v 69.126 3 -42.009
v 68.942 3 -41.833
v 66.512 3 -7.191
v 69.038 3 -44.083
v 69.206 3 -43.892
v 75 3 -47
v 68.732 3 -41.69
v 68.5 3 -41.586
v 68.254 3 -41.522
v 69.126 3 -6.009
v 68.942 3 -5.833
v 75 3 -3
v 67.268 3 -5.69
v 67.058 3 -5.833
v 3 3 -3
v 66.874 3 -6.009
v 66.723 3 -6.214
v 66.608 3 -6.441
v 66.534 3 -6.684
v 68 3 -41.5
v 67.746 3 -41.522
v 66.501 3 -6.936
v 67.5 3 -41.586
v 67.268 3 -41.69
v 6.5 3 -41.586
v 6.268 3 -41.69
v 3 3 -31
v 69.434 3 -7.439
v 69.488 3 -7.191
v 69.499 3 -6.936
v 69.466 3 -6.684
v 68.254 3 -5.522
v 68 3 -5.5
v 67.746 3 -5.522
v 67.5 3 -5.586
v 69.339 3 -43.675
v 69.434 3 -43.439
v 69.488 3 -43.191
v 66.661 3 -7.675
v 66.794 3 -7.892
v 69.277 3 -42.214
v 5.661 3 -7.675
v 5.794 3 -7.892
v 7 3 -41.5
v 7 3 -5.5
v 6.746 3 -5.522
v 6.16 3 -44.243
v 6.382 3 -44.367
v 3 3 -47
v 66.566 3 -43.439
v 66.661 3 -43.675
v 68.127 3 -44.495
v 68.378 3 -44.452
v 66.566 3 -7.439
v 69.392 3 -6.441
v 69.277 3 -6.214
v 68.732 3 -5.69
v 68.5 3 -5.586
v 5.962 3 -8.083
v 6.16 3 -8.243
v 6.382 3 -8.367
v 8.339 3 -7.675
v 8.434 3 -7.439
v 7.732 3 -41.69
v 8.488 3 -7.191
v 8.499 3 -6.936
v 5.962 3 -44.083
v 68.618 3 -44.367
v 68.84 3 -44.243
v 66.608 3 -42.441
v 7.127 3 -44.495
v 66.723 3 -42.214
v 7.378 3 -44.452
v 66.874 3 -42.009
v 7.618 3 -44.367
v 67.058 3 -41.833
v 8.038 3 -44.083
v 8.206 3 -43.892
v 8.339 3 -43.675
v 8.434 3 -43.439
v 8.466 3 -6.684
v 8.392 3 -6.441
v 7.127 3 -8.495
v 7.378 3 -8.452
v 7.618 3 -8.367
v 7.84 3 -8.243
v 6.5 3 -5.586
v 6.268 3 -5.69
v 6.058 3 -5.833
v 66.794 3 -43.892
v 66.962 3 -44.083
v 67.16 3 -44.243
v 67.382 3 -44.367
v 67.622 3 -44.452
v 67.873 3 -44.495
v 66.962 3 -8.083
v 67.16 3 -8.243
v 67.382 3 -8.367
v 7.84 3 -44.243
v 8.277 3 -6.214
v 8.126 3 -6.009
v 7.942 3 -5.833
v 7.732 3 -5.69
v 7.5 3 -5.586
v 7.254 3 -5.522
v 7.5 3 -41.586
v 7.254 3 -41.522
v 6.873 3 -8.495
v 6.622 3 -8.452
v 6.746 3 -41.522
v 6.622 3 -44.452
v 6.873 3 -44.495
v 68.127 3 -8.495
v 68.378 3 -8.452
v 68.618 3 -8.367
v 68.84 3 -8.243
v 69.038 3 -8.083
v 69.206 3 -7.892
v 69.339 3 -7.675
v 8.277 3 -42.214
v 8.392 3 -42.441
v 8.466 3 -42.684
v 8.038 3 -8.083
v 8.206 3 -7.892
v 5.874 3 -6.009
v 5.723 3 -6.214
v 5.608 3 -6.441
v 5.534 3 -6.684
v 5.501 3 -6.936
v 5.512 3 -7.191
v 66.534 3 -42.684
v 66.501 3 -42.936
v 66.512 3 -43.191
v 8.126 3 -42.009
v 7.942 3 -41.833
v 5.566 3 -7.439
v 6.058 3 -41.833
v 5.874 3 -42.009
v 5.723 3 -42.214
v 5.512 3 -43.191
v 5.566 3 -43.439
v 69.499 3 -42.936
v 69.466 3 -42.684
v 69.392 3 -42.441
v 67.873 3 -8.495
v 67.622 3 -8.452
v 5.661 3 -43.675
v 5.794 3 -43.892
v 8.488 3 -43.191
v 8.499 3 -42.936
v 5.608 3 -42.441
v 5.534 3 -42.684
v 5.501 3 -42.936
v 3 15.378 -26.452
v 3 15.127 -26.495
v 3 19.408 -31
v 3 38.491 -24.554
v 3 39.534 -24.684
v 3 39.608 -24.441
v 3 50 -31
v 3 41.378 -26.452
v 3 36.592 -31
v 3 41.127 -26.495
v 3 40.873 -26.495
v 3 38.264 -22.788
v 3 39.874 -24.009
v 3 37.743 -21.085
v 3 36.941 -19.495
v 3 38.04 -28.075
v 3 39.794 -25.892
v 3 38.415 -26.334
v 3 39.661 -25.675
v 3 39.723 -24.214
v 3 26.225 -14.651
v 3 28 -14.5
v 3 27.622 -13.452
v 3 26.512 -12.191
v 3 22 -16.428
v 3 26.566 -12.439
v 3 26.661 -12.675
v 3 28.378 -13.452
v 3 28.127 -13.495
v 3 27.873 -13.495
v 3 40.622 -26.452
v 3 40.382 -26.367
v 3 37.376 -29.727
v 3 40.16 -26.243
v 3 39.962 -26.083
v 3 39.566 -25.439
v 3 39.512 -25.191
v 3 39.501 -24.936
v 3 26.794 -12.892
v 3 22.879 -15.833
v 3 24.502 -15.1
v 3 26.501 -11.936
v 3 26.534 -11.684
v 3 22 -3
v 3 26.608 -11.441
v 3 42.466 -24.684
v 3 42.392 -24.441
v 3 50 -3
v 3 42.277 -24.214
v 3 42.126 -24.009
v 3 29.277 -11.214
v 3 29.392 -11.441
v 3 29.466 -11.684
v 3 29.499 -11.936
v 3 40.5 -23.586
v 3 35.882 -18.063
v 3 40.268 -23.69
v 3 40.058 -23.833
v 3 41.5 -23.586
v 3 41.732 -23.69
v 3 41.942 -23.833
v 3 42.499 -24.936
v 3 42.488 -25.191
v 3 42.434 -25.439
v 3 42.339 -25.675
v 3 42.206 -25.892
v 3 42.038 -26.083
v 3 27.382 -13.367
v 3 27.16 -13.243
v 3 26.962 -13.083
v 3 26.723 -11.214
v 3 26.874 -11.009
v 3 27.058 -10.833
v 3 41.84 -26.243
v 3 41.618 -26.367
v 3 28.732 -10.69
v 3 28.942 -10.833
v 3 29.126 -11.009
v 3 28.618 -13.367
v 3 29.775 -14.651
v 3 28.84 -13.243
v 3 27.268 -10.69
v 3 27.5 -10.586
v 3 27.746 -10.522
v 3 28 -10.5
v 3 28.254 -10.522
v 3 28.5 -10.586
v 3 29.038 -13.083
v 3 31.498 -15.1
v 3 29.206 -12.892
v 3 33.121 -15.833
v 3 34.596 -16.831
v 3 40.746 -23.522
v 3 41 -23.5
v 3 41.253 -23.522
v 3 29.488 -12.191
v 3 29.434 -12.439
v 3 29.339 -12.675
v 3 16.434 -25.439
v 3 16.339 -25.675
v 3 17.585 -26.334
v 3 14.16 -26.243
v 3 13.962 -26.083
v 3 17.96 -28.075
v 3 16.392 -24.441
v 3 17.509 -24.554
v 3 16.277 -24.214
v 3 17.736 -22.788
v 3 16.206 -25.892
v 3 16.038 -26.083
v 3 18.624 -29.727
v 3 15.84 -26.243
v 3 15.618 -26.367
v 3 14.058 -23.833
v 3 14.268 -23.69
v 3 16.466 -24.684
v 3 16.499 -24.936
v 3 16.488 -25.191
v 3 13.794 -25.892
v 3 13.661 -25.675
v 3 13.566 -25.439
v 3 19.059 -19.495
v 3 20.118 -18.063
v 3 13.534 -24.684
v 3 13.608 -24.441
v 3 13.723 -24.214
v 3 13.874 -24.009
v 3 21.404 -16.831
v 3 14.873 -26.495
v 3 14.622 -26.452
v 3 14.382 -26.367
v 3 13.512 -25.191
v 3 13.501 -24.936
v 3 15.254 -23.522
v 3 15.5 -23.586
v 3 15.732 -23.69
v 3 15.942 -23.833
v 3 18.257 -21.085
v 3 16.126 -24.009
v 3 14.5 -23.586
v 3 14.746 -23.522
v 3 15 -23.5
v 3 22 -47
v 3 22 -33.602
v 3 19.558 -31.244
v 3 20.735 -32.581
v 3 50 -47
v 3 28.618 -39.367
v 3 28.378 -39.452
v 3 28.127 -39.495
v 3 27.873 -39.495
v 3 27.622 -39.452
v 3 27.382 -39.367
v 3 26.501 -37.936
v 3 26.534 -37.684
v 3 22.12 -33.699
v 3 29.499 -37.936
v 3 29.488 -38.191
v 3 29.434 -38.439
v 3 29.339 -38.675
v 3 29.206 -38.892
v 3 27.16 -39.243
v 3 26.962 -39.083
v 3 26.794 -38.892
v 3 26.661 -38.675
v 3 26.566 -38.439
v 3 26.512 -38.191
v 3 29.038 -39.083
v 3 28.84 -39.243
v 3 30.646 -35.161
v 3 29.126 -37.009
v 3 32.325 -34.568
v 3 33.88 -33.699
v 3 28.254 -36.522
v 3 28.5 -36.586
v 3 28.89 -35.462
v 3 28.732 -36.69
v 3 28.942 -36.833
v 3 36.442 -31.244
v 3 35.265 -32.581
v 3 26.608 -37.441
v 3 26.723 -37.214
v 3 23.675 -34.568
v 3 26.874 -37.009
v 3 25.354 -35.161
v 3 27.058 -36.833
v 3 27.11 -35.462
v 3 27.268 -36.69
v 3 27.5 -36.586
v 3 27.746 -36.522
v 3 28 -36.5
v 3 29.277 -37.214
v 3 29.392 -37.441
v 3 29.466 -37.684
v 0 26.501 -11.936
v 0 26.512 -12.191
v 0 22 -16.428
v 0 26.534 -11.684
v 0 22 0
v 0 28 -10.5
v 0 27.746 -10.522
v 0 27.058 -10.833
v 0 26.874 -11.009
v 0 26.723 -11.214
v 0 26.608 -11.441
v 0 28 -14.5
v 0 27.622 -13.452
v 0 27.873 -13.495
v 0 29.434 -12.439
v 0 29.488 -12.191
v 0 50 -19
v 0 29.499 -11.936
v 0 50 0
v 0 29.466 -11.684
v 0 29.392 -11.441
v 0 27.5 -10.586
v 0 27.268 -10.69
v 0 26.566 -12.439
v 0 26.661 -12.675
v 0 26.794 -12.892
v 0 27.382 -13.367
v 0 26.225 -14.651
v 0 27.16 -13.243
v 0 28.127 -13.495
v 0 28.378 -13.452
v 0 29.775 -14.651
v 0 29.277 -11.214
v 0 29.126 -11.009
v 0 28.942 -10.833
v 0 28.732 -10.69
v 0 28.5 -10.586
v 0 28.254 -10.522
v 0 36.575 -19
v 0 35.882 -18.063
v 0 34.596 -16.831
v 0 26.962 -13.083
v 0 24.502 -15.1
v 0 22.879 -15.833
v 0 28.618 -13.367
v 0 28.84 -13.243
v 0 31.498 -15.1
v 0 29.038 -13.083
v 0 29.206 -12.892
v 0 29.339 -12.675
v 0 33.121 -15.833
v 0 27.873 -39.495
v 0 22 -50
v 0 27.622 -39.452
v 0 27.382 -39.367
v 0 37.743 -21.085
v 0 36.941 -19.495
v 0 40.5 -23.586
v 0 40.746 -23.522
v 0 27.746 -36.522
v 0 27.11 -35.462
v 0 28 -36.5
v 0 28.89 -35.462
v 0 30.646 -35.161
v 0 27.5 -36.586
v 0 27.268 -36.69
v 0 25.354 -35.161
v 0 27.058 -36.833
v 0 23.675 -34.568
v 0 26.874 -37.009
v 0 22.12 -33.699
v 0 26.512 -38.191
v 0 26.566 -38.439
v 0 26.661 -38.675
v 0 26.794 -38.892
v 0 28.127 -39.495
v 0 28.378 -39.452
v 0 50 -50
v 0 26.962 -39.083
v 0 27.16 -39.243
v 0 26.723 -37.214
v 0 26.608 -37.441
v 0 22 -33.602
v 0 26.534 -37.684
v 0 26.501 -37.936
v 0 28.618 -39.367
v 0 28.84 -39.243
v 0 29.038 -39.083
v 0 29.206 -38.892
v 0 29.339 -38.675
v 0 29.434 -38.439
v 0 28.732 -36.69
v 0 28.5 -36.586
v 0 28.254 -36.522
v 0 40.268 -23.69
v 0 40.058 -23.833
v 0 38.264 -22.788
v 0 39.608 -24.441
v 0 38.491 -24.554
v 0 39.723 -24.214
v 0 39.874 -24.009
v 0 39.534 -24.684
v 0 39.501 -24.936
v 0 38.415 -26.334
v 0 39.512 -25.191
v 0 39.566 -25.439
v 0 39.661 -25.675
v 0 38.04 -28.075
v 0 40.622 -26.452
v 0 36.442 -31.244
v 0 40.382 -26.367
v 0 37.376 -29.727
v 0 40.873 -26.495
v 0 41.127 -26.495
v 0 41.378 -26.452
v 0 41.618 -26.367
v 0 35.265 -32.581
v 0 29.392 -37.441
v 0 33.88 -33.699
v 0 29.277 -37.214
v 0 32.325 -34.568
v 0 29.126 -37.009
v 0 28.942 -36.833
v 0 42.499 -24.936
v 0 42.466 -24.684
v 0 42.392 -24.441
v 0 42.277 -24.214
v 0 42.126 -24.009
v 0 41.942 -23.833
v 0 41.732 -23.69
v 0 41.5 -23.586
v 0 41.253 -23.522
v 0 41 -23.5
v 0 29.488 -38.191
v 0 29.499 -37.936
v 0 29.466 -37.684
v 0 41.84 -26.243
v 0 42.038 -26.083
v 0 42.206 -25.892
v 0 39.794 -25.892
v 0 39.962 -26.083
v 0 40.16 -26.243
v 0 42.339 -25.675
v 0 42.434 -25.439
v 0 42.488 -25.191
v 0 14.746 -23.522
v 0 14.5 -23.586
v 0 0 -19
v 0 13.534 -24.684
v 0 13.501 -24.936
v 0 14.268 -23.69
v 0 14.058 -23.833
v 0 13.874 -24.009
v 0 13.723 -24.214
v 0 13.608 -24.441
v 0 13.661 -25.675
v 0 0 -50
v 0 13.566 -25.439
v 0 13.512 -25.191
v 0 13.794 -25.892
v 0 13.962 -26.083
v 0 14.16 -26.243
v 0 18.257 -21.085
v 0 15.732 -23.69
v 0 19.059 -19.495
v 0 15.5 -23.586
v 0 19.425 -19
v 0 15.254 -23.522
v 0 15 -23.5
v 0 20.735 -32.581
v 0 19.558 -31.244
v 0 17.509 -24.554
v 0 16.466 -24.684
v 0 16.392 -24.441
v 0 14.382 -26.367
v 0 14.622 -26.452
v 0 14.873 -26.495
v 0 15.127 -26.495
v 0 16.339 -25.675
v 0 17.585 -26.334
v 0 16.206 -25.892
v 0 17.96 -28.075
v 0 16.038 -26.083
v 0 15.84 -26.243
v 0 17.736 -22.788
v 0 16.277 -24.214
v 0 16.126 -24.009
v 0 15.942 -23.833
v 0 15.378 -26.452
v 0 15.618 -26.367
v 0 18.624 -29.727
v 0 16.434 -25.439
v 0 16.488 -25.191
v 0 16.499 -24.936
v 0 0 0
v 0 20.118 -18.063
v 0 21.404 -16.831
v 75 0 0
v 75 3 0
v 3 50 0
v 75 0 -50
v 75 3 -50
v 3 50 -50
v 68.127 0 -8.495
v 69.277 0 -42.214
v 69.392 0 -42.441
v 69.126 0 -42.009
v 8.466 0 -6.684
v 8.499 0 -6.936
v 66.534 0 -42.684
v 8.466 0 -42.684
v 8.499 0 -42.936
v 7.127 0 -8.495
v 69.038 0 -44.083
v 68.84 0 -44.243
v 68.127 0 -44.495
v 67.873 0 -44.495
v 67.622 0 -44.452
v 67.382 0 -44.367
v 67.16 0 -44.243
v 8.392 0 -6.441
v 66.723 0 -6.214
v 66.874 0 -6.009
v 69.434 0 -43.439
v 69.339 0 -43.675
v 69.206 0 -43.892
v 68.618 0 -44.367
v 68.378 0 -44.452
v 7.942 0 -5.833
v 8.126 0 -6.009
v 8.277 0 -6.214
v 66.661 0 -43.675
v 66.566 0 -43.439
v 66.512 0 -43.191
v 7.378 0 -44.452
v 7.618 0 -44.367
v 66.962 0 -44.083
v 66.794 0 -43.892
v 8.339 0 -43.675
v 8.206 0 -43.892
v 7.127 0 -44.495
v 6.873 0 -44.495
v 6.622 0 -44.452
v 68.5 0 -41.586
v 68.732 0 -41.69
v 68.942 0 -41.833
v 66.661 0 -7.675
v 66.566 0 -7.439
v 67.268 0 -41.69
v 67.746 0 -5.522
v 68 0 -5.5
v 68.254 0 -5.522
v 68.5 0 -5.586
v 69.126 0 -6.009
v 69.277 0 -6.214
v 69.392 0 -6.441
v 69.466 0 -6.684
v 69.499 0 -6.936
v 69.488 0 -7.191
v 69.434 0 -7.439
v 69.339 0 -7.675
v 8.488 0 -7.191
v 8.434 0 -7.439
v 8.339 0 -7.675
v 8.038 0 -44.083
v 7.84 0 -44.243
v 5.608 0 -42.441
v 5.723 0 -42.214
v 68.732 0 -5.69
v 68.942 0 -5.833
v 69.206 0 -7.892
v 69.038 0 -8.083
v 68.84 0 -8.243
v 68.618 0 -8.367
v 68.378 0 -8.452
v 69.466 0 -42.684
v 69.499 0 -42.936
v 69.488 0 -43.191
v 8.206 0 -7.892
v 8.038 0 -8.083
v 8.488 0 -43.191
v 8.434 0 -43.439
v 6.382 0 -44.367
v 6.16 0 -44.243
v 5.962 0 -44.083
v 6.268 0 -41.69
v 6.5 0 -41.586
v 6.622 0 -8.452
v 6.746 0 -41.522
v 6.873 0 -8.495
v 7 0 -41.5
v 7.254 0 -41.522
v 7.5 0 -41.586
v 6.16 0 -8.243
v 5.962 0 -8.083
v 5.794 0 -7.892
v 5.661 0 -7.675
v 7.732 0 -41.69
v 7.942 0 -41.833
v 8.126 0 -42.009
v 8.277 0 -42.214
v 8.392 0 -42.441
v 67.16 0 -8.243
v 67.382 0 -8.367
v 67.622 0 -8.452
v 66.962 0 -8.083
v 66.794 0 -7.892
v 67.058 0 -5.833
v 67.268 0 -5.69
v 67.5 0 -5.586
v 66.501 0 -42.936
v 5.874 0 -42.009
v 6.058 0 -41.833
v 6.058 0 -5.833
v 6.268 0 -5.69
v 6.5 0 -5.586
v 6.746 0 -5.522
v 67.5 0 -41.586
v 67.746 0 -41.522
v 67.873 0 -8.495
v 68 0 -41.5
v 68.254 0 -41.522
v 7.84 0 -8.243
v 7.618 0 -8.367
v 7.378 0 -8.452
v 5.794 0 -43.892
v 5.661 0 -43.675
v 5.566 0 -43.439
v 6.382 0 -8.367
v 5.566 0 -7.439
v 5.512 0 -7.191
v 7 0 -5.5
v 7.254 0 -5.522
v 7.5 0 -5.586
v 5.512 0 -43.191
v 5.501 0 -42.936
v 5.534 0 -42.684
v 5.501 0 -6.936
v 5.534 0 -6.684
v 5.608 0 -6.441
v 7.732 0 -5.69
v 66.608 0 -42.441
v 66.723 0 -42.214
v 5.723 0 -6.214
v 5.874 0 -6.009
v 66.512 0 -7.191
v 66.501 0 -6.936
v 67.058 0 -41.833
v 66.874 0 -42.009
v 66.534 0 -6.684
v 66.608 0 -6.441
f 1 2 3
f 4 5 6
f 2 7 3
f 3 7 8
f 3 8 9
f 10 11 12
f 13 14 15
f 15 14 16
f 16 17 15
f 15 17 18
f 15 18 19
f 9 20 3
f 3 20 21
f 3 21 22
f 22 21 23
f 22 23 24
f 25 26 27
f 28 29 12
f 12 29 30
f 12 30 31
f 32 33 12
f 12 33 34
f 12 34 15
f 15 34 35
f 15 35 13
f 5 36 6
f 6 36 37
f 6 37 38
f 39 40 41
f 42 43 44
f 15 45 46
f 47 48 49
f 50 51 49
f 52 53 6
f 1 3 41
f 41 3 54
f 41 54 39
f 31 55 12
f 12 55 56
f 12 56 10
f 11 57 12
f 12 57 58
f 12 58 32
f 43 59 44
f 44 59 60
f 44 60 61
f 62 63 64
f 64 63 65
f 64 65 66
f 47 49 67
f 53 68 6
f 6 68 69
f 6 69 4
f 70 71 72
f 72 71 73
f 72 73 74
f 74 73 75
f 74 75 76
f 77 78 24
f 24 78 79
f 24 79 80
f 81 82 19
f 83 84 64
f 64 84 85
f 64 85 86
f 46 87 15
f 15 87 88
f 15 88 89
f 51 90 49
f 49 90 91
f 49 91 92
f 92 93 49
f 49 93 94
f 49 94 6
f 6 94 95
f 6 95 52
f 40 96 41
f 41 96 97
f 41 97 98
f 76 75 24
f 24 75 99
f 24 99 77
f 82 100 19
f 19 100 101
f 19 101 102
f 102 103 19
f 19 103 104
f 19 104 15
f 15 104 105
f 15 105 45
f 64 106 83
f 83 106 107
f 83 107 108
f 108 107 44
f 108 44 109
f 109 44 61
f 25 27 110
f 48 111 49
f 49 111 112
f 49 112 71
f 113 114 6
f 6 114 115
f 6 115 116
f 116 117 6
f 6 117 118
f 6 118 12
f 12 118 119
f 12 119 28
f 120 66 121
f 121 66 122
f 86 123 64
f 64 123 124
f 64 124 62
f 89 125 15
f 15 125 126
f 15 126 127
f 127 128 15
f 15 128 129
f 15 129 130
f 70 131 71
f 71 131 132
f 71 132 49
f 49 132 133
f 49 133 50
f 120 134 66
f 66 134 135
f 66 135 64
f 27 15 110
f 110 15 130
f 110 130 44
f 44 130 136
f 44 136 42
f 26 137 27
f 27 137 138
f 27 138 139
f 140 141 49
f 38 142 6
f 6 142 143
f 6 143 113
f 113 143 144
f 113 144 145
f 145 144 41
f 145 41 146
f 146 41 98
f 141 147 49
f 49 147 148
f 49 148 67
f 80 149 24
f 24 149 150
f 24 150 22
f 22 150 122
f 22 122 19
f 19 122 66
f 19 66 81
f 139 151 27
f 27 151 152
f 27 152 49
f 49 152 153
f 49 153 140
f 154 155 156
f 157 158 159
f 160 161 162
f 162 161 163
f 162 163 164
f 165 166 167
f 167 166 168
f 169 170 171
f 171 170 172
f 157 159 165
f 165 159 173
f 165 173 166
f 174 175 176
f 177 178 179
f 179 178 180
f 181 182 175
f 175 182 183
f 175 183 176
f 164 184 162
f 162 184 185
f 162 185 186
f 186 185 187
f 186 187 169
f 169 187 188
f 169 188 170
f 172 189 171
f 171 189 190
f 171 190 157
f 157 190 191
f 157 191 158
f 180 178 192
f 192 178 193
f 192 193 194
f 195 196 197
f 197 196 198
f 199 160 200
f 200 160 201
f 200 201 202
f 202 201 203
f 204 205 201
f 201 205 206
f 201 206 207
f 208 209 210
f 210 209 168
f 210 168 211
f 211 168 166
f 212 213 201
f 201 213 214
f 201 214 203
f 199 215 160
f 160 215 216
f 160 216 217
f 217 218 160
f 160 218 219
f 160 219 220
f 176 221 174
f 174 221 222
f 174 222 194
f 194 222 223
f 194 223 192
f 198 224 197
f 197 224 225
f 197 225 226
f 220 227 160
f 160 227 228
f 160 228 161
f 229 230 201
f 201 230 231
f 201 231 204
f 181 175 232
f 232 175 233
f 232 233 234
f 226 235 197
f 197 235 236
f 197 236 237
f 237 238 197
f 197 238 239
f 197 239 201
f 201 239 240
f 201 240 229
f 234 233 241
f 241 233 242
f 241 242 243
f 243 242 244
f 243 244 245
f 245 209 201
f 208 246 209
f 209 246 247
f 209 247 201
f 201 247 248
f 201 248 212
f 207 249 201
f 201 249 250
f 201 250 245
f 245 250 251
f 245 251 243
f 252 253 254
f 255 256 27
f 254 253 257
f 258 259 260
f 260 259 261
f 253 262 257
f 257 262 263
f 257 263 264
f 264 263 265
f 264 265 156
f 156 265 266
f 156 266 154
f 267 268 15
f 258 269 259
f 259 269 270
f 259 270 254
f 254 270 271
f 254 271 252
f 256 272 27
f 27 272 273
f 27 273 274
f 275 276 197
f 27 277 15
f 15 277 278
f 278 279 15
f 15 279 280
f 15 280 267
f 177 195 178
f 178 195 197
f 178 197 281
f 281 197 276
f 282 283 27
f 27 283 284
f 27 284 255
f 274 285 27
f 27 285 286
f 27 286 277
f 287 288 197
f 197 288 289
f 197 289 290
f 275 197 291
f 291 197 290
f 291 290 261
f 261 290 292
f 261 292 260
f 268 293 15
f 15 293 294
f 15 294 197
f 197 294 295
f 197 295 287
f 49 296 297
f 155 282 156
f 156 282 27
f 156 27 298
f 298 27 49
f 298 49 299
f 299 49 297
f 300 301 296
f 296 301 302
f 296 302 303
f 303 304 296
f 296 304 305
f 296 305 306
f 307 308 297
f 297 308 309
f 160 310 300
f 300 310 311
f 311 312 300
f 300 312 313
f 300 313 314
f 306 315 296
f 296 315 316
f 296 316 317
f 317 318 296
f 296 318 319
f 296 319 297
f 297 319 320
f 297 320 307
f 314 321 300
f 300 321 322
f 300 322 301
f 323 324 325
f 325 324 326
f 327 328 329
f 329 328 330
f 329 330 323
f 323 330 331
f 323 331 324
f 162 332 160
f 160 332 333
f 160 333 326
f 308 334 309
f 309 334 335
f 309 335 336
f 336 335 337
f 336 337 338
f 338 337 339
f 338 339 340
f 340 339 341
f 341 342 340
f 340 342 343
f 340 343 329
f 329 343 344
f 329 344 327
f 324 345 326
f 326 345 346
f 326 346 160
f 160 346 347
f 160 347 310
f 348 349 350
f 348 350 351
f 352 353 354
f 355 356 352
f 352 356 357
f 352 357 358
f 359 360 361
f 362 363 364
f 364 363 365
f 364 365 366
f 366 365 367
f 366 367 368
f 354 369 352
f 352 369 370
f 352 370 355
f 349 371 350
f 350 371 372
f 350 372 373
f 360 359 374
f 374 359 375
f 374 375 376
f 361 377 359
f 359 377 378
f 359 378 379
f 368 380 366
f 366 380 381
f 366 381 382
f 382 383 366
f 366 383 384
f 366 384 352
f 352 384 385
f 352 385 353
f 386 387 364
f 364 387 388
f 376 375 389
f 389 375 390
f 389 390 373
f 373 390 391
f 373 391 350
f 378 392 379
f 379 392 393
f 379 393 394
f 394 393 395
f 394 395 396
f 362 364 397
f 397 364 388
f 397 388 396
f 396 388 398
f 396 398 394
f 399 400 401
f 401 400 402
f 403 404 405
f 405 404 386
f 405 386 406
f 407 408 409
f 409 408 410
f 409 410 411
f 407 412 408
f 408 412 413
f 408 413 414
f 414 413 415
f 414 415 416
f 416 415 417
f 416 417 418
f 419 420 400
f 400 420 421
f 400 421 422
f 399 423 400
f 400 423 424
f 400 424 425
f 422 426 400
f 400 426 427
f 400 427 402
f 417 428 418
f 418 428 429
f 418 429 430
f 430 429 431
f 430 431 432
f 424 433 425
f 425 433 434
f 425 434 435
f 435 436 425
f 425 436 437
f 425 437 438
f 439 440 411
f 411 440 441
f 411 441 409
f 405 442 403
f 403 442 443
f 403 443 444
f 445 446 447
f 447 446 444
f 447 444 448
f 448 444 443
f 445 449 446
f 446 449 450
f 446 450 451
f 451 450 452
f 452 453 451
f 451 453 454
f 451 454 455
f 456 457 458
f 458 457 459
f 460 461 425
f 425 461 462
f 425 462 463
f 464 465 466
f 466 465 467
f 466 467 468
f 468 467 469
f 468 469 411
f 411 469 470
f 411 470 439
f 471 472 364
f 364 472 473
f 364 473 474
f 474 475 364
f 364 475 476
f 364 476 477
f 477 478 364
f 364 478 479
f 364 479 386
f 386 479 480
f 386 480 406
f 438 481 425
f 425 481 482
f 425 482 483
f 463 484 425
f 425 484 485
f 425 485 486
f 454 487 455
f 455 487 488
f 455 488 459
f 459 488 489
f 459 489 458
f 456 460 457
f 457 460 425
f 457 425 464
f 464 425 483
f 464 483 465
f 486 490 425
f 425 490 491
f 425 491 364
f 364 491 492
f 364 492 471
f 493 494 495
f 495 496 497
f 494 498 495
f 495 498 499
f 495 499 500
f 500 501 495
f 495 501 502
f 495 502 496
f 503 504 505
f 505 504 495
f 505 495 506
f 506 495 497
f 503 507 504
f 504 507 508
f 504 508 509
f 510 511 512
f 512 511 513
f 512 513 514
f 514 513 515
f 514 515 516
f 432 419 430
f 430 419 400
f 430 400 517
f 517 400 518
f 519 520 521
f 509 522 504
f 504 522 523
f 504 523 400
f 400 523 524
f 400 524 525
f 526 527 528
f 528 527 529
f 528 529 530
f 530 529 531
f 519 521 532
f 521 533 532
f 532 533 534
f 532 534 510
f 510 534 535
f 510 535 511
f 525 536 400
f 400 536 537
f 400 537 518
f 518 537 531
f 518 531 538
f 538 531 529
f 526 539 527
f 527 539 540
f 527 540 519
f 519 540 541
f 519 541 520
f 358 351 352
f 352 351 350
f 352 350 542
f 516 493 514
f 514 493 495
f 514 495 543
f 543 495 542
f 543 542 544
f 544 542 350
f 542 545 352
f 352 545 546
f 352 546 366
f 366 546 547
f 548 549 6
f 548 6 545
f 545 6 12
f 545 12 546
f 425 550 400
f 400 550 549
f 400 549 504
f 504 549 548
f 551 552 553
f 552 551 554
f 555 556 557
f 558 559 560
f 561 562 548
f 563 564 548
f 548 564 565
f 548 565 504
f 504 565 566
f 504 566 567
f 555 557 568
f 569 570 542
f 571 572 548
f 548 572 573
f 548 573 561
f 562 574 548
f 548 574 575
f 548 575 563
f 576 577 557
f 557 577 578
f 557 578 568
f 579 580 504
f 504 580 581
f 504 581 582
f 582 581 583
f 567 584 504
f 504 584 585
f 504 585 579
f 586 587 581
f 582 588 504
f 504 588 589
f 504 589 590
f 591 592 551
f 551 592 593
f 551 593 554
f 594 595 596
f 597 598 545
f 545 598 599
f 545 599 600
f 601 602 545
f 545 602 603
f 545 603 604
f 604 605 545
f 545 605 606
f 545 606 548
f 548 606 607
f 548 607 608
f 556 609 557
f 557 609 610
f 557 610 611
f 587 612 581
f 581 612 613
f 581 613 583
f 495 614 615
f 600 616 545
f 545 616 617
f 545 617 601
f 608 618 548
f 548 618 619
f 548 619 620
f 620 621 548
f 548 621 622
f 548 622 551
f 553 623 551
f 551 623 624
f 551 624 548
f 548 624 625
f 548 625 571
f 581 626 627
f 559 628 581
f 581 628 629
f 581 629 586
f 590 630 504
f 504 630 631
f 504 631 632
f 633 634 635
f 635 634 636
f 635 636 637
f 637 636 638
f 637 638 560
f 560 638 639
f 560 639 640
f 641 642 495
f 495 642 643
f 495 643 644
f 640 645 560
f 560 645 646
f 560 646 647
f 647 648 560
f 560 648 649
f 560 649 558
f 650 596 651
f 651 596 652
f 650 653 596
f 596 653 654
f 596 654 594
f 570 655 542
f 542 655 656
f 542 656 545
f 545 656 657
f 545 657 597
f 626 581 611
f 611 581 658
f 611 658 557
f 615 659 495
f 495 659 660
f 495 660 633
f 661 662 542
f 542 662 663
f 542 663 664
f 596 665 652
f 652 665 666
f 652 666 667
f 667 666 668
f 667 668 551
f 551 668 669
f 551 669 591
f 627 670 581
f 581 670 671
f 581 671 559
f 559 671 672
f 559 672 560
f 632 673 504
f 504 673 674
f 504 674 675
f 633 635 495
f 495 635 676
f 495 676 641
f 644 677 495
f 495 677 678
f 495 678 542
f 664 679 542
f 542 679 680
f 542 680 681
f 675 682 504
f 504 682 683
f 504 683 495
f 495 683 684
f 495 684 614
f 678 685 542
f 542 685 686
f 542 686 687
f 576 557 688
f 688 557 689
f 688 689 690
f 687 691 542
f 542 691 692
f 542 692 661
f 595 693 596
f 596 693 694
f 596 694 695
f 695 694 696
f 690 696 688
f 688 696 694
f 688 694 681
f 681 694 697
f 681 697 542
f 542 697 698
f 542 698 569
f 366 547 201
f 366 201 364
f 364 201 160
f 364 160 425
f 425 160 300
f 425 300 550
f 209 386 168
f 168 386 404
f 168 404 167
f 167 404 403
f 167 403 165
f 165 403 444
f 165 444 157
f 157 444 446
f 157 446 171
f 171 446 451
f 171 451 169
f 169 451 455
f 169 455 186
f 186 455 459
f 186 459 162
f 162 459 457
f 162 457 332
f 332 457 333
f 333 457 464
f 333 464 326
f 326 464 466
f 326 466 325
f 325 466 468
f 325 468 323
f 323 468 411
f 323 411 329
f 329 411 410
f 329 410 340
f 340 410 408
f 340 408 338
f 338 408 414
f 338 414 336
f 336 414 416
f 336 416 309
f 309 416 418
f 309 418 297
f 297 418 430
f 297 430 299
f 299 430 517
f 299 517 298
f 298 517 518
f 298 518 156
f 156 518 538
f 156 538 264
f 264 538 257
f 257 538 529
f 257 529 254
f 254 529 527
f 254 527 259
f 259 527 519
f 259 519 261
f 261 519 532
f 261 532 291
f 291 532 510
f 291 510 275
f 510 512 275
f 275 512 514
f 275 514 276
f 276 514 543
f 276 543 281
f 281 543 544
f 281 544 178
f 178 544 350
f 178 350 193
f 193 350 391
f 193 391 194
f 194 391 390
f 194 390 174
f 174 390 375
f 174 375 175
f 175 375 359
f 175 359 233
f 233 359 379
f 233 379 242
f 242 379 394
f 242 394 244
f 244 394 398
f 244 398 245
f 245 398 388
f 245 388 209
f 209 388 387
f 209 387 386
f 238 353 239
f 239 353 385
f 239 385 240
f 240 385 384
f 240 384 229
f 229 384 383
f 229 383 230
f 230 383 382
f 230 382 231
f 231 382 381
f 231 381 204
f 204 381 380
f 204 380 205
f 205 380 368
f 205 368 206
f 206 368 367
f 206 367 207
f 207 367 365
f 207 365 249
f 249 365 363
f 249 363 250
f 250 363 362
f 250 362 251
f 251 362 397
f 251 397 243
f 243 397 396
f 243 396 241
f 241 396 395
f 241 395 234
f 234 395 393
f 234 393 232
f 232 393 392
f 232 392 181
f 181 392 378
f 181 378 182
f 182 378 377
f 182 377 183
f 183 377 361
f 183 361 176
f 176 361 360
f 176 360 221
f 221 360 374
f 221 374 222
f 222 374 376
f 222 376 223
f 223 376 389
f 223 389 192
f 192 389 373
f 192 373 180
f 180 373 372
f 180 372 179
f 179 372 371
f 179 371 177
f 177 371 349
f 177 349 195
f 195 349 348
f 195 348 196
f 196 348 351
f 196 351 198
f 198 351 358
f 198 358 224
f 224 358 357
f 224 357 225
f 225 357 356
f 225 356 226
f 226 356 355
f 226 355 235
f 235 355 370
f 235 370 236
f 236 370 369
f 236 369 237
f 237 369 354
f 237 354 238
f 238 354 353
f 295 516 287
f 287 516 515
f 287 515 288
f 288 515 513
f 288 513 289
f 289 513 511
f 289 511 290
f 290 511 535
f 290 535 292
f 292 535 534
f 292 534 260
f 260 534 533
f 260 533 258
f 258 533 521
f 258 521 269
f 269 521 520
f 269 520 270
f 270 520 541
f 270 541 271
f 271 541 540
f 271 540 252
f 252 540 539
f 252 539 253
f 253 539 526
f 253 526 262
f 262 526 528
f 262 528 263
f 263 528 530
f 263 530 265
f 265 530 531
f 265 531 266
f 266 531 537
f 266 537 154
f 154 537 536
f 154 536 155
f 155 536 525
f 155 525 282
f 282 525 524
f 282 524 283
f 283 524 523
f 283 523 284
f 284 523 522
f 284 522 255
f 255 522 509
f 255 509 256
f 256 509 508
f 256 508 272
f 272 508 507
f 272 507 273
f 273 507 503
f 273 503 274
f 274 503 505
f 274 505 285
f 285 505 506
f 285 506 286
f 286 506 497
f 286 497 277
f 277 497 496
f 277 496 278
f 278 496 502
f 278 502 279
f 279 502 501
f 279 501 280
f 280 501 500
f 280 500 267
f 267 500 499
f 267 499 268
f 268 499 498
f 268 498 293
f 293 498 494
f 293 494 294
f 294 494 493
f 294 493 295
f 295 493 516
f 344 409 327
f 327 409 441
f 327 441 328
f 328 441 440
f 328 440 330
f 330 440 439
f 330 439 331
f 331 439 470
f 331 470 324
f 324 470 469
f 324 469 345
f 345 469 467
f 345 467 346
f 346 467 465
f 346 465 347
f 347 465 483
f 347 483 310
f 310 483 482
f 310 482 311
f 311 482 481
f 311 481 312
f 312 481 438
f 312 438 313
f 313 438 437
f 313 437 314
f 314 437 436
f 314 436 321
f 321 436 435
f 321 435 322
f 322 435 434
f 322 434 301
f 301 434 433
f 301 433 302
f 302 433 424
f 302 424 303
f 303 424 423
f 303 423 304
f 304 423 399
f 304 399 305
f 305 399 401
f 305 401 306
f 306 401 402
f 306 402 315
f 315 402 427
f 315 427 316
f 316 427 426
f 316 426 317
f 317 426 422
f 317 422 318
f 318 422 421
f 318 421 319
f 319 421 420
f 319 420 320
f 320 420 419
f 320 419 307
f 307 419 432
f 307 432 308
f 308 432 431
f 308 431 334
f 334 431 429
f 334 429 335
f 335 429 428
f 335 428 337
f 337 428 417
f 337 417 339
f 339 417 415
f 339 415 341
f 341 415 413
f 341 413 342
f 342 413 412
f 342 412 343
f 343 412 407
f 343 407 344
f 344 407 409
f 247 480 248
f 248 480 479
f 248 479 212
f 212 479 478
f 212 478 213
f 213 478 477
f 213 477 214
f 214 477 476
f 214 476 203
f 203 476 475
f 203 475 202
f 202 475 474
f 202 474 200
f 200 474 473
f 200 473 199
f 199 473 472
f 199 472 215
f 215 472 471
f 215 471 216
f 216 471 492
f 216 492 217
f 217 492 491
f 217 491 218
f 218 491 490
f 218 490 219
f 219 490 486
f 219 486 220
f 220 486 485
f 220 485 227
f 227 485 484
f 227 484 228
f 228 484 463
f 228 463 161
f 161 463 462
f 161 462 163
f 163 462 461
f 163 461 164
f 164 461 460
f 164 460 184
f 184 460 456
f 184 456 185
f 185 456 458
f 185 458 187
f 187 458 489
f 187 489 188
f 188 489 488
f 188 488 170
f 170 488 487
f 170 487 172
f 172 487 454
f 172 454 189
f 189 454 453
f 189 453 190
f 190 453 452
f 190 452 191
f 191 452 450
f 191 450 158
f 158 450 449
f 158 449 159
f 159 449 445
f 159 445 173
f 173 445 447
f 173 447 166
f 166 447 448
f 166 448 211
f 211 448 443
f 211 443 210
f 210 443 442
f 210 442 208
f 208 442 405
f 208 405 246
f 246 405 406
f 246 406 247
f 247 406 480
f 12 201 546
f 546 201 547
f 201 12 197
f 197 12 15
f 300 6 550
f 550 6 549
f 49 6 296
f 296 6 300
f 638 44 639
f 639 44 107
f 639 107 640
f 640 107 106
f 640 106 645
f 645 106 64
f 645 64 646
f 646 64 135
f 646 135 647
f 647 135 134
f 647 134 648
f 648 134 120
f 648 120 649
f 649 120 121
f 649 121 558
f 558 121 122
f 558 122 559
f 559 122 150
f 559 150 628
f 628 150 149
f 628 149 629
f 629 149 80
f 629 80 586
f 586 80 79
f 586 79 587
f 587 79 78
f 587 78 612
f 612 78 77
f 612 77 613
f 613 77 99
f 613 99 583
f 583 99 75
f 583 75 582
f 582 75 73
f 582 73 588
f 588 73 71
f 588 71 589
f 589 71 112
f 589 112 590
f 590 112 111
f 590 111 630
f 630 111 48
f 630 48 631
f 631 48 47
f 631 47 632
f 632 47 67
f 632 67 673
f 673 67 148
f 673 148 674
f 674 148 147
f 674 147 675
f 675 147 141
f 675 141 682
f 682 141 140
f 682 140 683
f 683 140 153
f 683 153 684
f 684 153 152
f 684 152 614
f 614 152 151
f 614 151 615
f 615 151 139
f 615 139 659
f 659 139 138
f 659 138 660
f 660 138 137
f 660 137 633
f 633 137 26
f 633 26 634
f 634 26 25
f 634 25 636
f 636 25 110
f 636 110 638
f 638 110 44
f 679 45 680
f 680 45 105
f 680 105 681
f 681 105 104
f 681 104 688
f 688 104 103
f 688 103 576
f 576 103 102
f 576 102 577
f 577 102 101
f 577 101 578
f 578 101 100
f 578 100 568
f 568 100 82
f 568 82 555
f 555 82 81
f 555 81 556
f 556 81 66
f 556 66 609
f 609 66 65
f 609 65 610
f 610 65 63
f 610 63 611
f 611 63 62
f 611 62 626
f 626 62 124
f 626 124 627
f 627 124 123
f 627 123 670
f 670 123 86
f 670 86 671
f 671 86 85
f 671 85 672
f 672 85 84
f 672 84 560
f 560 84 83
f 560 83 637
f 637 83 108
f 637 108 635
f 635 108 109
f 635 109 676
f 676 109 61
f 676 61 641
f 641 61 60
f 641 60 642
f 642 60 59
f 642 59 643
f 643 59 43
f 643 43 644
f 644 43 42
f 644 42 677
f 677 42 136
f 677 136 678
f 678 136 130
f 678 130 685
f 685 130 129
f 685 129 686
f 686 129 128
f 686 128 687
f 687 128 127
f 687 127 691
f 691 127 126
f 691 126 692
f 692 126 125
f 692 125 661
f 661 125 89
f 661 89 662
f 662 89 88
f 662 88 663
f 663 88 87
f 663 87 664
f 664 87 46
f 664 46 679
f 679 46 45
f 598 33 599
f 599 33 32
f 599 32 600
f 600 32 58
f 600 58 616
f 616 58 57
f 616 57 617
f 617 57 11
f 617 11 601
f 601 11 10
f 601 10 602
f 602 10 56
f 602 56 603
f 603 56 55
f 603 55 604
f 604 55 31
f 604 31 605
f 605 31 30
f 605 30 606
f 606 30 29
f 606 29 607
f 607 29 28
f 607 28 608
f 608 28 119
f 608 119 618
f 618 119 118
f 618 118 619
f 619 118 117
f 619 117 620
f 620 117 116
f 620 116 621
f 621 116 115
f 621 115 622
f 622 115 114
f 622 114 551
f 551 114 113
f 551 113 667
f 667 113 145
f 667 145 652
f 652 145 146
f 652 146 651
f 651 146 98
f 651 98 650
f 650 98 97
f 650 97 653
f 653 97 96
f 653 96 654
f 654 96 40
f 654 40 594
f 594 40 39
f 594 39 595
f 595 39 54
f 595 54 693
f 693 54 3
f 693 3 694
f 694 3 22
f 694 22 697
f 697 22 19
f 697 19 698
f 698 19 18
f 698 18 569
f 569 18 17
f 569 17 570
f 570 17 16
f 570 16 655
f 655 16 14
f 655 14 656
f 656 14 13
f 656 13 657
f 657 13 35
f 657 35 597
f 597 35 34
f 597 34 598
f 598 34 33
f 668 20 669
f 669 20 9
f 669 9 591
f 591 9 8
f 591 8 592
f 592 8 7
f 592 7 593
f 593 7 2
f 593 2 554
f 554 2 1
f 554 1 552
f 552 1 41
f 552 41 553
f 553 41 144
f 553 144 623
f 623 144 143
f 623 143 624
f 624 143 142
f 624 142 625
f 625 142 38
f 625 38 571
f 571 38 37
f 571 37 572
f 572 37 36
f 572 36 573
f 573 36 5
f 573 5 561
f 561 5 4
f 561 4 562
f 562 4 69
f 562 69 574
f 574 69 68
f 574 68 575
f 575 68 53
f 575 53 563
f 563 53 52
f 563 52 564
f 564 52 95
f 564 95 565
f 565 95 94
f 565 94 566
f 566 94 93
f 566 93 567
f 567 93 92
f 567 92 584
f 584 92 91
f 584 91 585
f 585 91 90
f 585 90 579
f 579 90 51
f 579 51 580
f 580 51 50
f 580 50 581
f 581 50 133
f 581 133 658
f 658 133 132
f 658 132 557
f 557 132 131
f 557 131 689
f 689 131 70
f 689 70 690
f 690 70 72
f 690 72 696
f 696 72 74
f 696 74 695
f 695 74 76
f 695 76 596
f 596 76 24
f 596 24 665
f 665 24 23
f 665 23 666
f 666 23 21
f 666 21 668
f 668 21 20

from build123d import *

# Parameters (mm, degrees)
ESQUISSE1_W             = 75
ESQUISSE1_H             = 50
BOSS_EXTRU_1_DEPTH      = 3
ESQUISSE2_W             = 3
ESQUISSE2_H             = 50
BOSS_EXTRU_2_DEPTH      = 47
ESQUISSE3_R             = 10.5
ESQUISSE3_R_2           = 1.5
ENL_V_MAT_EXTRU_1_DEPTH = 3
BOSS_EXTRU_3_DEPTH      = 3
BOSS_EXTRU_4_DEPTH      = 3
ESQUISSE6_R             = 1.5
ENL_V_MAT_EXTRU_2_DEPTH = 3


with BuildPart() as part:
    # Esquisse1 → Boss.-Extru.1 (new body)
    with BuildSketch(Plane(origin=(0, 0, 0), x_dir=(1, 0, 0), z_dir=(0, 1, 0))):
        with Locations((37.5, 25)):
            Rectangle(ESQUISSE1_W, ESQUISSE1_H)
    extrude(amount=BOSS_EXTRU_1_DEPTH)

    # Esquisse2 → Boss.-Extru.2 (add)
    with BuildSketch(Plane(origin=(0, 3, 0), x_dir=(1, 0, 0), z_dir=(0, 1, 0))):
        with Locations((1.5, 25)):
            Rectangle(ESQUISSE2_W, ESQUISSE2_H)
    extrude(amount=BOSS_EXTRU_2_DEPTH)

    # Esquisse3 → Enlèv. mat.-Extru.1 (cut)
    with BuildSketch(Plane.ZY):
        with Locations((-25, 28)):
            Circle(ESQUISSE3_R)
        with Locations((-12, 28)):
            Circle(ESQUISSE3_R_2)
        with Locations((-25, 15)):
            Circle(ESQUISSE3_R_2)
        with Locations((-38, 28)):
            Circle(ESQUISSE3_R_2)
        with Locations((-25, 41)):
            Circle(ESQUISSE3_R_2)
    extrude(amount=-ENL_V_MAT_EXTRU_1_DEPTH, mode=Mode.SUBTRACT)

    # Esquisse4 → Boss.-Extru.3 (add)
    with BuildSketch(Plane.XY):
        Polygon((3, 50), (75, 3), (3, 3), align=None)
    extrude(amount=-BOSS_EXTRU_3_DEPTH)

    # Esquisse5 → Boss.-Extru.4 (add)
    with BuildSketch(Plane(origin=(0, 0, -50), x_dir=(-1, 0, 0), z_dir=(0, 0, -1))):
        Polygon((-75, 3), (-3, 3), (-3, 50), align=None)
    extrude(amount=-BOSS_EXTRU_4_DEPTH)

    # Esquisse6 → Enlèv. mat.-Extru.2 (cut)
    with BuildSketch(Plane(origin=(0, 3, 0), x_dir=(1, 0, 0), z_dir=(0, 1, 0))):
        with Locations(Location((7, 43, 0), (0, 0, 270))):
            Circle(ESQUISSE6_R)
        with Locations(Location((68, 43, 0), (0, 0, 270))):
            Circle(ESQUISSE6_R)
        with Locations(Location((68, 7, 0), (0, 0, 270))):
            Circle(ESQUISSE6_R)
        with Locations(Location((7, 7, 0), (0, 0, 270))):
            Circle(ESQUISSE6_R)
    extrude(amount=-ENL_V_MAT_EXTRU_2_DEPTH, mode=Mode.SUBTRACT)


solid = part.part
